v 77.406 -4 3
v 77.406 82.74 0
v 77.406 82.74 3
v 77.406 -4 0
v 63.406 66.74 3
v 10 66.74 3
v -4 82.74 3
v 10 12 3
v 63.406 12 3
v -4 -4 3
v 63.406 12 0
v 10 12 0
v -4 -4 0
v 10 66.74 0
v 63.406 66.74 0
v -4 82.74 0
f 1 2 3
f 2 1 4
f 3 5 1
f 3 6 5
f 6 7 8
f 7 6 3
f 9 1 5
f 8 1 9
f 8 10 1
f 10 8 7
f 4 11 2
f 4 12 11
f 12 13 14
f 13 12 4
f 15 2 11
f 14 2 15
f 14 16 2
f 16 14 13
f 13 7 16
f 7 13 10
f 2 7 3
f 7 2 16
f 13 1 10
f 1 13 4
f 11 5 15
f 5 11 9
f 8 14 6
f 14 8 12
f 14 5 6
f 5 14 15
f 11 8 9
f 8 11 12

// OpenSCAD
// Units: mm. PCB stand worked example.
difference() {
  translate([-4, -4, 0])
    cube([81.406, 86.740, 3]);
  translate([10, 12, -0.1])
    cube([53.406, 54.740, 3.2]);
}
